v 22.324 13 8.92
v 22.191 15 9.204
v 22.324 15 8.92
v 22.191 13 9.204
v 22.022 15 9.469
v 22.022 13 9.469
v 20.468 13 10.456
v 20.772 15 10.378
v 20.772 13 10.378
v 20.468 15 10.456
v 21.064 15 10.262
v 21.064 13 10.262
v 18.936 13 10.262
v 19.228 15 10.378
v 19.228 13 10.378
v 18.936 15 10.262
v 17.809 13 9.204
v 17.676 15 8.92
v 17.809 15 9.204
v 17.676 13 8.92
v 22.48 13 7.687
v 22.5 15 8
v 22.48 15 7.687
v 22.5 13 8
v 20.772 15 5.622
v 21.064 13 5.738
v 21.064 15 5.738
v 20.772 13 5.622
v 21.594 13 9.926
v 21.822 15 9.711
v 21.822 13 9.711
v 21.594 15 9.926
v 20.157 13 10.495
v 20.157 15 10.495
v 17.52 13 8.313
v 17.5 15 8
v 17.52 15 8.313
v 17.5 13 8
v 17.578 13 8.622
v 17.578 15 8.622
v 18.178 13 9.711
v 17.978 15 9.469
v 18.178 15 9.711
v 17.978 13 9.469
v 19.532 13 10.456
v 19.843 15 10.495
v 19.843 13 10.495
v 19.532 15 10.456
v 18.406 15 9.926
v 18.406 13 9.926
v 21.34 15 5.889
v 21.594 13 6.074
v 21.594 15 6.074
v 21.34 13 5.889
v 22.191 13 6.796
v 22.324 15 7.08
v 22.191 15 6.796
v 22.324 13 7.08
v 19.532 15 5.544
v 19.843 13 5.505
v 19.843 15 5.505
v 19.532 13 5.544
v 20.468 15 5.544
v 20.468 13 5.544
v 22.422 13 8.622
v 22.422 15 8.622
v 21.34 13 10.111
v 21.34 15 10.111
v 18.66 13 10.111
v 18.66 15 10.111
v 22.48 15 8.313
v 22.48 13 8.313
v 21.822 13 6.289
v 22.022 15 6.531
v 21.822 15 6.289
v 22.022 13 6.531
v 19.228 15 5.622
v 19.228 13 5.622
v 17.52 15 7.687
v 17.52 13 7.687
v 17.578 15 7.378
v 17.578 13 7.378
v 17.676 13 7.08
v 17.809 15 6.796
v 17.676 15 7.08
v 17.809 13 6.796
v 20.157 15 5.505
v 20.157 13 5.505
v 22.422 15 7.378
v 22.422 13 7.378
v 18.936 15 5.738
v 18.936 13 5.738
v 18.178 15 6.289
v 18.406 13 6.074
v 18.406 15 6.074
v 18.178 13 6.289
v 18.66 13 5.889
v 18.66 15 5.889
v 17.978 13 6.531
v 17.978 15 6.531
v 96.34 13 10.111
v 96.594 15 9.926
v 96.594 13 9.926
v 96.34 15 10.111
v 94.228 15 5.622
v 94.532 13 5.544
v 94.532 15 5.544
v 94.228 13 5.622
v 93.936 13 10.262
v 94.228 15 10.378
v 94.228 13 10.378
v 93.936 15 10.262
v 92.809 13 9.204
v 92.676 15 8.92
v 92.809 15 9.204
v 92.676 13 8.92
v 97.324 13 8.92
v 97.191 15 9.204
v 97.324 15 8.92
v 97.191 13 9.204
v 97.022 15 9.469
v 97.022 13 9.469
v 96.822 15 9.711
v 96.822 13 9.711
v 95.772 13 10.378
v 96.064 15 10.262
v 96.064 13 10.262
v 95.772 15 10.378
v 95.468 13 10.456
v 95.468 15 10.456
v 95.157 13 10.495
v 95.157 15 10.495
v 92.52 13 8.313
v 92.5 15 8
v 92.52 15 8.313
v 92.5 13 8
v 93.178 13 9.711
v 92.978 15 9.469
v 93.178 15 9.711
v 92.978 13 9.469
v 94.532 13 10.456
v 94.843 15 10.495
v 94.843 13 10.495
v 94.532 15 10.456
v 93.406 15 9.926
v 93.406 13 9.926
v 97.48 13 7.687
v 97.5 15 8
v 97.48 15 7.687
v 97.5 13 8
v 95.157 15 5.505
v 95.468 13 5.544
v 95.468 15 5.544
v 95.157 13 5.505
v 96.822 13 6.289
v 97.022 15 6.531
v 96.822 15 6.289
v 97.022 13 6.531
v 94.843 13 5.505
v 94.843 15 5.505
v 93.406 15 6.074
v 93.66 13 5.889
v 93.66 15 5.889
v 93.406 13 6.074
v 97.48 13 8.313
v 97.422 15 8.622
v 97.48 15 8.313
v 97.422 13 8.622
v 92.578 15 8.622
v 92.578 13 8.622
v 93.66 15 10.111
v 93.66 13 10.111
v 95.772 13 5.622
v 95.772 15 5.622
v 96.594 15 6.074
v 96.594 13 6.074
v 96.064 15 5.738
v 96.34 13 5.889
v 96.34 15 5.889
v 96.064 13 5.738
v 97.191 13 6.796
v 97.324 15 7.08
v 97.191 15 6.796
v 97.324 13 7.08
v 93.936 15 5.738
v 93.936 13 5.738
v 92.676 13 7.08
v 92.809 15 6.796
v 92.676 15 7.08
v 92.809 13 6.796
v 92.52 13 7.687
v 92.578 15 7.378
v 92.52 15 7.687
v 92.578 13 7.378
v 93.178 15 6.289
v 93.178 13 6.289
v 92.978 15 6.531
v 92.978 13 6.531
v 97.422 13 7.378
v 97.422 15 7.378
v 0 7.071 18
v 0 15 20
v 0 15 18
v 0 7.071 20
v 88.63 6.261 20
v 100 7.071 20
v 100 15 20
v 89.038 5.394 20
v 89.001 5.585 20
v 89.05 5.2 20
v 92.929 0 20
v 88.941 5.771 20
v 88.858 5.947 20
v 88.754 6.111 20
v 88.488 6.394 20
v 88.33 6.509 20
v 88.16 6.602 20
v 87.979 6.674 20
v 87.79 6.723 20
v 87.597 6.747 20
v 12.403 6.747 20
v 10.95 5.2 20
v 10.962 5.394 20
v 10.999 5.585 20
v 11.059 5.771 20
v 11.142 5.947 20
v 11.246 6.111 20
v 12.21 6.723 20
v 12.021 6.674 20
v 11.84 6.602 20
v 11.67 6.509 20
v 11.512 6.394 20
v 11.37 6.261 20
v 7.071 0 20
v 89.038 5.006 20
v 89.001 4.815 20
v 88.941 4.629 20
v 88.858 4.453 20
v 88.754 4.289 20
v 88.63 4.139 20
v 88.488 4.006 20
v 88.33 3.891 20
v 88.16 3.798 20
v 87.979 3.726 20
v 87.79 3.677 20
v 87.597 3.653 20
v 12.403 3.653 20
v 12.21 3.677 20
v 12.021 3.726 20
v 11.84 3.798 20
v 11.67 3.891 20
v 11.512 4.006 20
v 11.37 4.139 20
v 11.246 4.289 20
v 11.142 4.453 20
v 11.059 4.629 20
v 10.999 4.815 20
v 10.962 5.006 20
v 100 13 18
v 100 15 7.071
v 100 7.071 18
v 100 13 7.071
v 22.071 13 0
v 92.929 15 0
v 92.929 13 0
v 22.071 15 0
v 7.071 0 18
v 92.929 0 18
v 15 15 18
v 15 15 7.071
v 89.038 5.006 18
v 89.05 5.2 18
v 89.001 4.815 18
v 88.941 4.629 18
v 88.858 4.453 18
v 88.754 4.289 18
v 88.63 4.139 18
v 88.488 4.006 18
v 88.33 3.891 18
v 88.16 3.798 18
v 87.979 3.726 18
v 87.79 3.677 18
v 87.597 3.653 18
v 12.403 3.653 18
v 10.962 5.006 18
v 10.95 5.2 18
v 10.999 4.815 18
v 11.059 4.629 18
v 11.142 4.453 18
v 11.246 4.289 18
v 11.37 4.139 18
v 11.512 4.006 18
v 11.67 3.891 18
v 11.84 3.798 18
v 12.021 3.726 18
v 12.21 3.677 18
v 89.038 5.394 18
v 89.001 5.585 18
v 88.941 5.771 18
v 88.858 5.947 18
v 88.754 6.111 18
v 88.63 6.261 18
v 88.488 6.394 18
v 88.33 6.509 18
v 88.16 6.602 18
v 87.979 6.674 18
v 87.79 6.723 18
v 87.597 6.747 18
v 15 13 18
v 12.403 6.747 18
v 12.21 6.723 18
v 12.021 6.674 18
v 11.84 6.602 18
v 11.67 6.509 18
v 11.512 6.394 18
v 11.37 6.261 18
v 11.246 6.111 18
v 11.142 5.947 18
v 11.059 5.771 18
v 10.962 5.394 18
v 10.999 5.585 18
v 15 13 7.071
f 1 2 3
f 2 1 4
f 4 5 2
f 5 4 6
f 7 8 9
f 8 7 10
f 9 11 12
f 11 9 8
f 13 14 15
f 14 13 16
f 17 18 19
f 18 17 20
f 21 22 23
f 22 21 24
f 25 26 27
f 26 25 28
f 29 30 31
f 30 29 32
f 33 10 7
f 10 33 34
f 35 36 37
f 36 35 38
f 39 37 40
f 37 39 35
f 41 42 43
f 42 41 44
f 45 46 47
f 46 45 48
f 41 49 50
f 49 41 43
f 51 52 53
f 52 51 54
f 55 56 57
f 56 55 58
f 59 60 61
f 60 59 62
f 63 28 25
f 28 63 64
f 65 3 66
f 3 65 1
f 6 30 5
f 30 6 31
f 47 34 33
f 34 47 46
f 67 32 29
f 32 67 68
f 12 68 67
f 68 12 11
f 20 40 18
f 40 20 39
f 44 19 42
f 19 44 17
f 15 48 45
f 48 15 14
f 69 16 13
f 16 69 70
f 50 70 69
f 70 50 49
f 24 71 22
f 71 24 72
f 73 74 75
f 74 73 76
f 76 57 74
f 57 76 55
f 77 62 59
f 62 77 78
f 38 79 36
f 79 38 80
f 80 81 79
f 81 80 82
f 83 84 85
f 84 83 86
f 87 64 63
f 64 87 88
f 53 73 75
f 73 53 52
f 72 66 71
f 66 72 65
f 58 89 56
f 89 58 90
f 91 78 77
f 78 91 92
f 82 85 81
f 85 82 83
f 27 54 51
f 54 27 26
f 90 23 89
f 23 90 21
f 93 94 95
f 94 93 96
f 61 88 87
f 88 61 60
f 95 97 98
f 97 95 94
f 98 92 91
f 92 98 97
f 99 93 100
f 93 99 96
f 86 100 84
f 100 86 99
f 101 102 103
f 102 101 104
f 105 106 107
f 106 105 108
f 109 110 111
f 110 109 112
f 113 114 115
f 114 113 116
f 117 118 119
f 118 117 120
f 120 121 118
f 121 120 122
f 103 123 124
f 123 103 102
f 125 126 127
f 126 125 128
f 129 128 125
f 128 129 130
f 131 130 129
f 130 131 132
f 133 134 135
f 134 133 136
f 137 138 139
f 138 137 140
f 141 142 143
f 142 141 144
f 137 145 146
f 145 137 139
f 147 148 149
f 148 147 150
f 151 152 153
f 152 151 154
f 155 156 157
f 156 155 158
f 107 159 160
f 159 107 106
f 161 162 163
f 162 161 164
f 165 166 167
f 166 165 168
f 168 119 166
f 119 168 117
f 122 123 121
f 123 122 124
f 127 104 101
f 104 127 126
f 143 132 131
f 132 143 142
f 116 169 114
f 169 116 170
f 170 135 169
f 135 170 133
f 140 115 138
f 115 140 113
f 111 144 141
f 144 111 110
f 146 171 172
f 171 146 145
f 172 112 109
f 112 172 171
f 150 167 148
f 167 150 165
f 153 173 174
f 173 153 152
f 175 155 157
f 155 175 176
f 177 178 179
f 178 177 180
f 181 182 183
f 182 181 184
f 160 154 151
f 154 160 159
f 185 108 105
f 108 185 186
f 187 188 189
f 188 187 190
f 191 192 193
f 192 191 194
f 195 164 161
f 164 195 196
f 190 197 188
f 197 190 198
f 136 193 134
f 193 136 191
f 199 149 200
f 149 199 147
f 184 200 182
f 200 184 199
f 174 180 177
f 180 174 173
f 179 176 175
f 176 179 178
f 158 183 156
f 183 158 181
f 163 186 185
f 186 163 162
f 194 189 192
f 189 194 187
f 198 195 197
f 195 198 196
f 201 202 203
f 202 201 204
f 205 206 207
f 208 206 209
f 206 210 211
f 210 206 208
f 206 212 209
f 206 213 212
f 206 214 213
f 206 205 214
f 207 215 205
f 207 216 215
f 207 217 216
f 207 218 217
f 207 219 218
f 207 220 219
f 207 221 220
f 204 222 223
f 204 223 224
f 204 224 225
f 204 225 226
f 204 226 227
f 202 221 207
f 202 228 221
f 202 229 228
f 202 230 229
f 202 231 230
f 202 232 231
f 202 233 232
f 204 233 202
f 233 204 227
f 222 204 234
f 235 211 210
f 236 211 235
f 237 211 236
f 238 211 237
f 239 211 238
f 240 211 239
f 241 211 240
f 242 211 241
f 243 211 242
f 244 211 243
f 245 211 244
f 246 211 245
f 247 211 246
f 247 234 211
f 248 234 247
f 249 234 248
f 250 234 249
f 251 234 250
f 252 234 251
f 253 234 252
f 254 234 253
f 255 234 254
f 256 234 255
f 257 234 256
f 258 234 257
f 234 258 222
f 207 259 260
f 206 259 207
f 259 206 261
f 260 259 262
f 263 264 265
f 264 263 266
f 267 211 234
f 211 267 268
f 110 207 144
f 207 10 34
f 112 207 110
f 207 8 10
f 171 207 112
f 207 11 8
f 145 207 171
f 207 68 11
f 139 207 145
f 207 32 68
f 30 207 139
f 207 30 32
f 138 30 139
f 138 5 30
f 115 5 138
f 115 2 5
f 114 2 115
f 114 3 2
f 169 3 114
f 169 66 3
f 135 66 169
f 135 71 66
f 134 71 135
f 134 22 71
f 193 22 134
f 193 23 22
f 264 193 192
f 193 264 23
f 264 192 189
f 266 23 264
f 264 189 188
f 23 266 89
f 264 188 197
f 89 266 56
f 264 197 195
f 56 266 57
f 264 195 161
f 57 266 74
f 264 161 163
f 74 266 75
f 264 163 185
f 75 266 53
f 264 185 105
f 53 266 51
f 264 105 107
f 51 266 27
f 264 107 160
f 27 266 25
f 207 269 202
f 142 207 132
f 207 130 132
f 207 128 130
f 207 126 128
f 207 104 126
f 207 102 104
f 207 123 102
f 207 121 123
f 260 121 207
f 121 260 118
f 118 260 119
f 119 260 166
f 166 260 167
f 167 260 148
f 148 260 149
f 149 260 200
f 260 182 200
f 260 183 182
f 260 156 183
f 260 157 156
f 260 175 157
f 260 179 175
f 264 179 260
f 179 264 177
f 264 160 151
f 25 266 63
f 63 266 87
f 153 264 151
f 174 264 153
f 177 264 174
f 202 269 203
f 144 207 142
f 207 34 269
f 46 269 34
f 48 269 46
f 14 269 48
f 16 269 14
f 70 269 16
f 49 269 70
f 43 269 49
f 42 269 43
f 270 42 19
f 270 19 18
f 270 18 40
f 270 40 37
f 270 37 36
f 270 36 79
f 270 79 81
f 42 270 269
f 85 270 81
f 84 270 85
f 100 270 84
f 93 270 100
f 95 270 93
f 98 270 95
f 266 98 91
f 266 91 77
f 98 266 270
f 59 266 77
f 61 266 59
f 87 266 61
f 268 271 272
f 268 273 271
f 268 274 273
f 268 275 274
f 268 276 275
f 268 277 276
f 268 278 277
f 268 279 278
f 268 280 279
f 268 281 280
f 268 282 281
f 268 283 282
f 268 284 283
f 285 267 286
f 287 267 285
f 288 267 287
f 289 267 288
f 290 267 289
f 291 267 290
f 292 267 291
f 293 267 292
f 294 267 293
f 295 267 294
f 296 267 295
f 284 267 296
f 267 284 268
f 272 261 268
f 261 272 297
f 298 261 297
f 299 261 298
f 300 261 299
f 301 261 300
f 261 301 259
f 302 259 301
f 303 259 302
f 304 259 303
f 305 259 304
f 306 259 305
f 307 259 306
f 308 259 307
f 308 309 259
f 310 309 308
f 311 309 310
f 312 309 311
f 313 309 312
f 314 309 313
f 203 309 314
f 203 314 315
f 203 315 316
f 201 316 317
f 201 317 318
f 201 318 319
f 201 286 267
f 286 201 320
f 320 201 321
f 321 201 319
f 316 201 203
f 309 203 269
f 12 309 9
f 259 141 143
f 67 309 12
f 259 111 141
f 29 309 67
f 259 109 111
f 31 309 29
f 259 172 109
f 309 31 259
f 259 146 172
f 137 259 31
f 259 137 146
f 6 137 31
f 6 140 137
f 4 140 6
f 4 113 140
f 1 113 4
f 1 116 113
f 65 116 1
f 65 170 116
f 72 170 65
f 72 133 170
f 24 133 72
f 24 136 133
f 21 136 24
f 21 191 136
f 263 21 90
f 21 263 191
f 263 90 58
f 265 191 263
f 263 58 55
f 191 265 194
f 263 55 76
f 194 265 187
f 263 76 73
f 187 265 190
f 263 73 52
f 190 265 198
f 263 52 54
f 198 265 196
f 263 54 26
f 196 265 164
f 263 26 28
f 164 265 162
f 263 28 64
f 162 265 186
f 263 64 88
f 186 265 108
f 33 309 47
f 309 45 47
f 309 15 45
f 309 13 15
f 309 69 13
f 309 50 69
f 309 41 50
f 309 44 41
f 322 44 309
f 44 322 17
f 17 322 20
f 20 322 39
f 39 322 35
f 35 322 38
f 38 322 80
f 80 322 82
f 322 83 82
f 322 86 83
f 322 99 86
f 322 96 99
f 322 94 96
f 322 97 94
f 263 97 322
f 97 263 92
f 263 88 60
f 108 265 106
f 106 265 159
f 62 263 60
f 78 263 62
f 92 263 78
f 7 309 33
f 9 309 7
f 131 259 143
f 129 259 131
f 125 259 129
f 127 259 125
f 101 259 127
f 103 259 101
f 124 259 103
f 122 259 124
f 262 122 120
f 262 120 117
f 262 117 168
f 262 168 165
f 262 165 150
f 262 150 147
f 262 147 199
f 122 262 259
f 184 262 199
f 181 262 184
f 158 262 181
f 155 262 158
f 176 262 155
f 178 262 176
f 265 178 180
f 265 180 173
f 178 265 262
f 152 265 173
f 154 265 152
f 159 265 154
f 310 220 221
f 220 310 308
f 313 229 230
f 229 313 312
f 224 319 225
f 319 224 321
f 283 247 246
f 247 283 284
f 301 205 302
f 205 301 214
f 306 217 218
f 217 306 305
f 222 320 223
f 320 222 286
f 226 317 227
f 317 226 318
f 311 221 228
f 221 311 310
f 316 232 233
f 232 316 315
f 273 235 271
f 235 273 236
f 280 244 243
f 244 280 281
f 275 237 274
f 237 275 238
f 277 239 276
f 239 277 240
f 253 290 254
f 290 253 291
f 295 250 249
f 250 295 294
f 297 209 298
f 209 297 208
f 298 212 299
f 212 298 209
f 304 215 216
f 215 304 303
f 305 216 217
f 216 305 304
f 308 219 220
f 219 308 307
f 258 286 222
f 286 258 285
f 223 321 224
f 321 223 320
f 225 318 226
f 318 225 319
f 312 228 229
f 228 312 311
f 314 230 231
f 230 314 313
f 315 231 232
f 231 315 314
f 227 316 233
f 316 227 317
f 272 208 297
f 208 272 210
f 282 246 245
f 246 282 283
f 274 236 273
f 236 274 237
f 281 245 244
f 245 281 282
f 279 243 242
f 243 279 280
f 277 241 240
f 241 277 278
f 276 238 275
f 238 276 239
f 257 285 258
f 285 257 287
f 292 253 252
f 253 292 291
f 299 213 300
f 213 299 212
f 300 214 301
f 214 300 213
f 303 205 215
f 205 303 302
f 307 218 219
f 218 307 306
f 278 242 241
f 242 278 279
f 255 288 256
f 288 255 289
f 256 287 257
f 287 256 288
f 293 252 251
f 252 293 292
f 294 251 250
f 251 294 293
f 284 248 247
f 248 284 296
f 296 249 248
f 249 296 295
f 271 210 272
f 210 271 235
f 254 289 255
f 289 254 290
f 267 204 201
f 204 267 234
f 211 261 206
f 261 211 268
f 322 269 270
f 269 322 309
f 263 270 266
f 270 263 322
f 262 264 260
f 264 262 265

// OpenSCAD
/* rpi4case_holder_MPSMv2.scad
Author: andimoto@posteo.de
----------------------------
 */
$fn=50;
extra=2;
wallThickness=2;

mpsmScrewRadius=1.55;
holeDistancePiCase=75;
radiusPiMountHoles=2.5;

module rpi4case_holder(length=100, depth=15,hight=20)
{
  cutOutHight=hight-wallThickness;
  cutOutDepth=depth-wallThickness;

  difference() {
    cube([length,depth,hight]);

    translate([-extra/2,-extra,-extra]) cube([length+extra,cutOutDepth+extra,cutOutHight+extra]);

    /* top holes */
    #translate([(length-holeDistancePiCase)/2,cutOutDepth*0.4,hight-extra/2]) hull() {
        translate([holeDistancePiCase,0,0]) cylinder(r=mpsmScrewRadius, h=wallThickness*2, center=true);
        cylinder(r=mpsmScrewRadius, h=wallThickness*2, center=true);
    }

    /* rpi mounting holes */
    #translate([((length-holeDistancePiCase-radiusPiMountHoles*2)),depth-wallThickness/2,cutOutHight/2-1])
    rotate([90,0,0])
    union()
    {
      translate([0, 0, 0]) cylinder(r=radiusPiMountHoles, h=wallThickness*2, center=true);
      translate([holeDistancePiCase, 0, 0]) cylinder(r=radiusPiMountHoles, h=wallThickness*2, center=true);
    }
    /* #translate([88.5,14,-84]) rotate([0,180,0]) import("Rpi_4_Case_Bottom.stl"); */

    /* cut of edges */
    translate([0,0,20]) rotate([0,0,45]) cube([10,10,10], center=true);
    translate([length,0,20]) rotate([0,0,45]) cube([10,10,10], center=true);

    /* extra coutout for z axis */
    #translate([-extra,0,0]) cube([(length-holeDistancePiCase-radiusPiMountHoles*4)+extra,depth+extra,cutOutHight]);

    #translate([(length-holeDistancePiCase-radiusPiMountHoles*4),depth,0])
      rotate([0,45,0]) cube([10,10,10], center=true);
    #translate([(length),depth,0])
      rotate([0,45,0]) cube([10,10,10], center=true);
  }

}

/* hull() {
    translate([100,0,0]) cylinder(r=1.5, h=4, center=true);
    cylinder(r=1.5, h=4, center=true);
} */


/* translate([76,15,-83]) rotate([0,180,0]) color("green") import("Rpi_4_Case_Bottom.stl"); */
  rpi4case_holder();
